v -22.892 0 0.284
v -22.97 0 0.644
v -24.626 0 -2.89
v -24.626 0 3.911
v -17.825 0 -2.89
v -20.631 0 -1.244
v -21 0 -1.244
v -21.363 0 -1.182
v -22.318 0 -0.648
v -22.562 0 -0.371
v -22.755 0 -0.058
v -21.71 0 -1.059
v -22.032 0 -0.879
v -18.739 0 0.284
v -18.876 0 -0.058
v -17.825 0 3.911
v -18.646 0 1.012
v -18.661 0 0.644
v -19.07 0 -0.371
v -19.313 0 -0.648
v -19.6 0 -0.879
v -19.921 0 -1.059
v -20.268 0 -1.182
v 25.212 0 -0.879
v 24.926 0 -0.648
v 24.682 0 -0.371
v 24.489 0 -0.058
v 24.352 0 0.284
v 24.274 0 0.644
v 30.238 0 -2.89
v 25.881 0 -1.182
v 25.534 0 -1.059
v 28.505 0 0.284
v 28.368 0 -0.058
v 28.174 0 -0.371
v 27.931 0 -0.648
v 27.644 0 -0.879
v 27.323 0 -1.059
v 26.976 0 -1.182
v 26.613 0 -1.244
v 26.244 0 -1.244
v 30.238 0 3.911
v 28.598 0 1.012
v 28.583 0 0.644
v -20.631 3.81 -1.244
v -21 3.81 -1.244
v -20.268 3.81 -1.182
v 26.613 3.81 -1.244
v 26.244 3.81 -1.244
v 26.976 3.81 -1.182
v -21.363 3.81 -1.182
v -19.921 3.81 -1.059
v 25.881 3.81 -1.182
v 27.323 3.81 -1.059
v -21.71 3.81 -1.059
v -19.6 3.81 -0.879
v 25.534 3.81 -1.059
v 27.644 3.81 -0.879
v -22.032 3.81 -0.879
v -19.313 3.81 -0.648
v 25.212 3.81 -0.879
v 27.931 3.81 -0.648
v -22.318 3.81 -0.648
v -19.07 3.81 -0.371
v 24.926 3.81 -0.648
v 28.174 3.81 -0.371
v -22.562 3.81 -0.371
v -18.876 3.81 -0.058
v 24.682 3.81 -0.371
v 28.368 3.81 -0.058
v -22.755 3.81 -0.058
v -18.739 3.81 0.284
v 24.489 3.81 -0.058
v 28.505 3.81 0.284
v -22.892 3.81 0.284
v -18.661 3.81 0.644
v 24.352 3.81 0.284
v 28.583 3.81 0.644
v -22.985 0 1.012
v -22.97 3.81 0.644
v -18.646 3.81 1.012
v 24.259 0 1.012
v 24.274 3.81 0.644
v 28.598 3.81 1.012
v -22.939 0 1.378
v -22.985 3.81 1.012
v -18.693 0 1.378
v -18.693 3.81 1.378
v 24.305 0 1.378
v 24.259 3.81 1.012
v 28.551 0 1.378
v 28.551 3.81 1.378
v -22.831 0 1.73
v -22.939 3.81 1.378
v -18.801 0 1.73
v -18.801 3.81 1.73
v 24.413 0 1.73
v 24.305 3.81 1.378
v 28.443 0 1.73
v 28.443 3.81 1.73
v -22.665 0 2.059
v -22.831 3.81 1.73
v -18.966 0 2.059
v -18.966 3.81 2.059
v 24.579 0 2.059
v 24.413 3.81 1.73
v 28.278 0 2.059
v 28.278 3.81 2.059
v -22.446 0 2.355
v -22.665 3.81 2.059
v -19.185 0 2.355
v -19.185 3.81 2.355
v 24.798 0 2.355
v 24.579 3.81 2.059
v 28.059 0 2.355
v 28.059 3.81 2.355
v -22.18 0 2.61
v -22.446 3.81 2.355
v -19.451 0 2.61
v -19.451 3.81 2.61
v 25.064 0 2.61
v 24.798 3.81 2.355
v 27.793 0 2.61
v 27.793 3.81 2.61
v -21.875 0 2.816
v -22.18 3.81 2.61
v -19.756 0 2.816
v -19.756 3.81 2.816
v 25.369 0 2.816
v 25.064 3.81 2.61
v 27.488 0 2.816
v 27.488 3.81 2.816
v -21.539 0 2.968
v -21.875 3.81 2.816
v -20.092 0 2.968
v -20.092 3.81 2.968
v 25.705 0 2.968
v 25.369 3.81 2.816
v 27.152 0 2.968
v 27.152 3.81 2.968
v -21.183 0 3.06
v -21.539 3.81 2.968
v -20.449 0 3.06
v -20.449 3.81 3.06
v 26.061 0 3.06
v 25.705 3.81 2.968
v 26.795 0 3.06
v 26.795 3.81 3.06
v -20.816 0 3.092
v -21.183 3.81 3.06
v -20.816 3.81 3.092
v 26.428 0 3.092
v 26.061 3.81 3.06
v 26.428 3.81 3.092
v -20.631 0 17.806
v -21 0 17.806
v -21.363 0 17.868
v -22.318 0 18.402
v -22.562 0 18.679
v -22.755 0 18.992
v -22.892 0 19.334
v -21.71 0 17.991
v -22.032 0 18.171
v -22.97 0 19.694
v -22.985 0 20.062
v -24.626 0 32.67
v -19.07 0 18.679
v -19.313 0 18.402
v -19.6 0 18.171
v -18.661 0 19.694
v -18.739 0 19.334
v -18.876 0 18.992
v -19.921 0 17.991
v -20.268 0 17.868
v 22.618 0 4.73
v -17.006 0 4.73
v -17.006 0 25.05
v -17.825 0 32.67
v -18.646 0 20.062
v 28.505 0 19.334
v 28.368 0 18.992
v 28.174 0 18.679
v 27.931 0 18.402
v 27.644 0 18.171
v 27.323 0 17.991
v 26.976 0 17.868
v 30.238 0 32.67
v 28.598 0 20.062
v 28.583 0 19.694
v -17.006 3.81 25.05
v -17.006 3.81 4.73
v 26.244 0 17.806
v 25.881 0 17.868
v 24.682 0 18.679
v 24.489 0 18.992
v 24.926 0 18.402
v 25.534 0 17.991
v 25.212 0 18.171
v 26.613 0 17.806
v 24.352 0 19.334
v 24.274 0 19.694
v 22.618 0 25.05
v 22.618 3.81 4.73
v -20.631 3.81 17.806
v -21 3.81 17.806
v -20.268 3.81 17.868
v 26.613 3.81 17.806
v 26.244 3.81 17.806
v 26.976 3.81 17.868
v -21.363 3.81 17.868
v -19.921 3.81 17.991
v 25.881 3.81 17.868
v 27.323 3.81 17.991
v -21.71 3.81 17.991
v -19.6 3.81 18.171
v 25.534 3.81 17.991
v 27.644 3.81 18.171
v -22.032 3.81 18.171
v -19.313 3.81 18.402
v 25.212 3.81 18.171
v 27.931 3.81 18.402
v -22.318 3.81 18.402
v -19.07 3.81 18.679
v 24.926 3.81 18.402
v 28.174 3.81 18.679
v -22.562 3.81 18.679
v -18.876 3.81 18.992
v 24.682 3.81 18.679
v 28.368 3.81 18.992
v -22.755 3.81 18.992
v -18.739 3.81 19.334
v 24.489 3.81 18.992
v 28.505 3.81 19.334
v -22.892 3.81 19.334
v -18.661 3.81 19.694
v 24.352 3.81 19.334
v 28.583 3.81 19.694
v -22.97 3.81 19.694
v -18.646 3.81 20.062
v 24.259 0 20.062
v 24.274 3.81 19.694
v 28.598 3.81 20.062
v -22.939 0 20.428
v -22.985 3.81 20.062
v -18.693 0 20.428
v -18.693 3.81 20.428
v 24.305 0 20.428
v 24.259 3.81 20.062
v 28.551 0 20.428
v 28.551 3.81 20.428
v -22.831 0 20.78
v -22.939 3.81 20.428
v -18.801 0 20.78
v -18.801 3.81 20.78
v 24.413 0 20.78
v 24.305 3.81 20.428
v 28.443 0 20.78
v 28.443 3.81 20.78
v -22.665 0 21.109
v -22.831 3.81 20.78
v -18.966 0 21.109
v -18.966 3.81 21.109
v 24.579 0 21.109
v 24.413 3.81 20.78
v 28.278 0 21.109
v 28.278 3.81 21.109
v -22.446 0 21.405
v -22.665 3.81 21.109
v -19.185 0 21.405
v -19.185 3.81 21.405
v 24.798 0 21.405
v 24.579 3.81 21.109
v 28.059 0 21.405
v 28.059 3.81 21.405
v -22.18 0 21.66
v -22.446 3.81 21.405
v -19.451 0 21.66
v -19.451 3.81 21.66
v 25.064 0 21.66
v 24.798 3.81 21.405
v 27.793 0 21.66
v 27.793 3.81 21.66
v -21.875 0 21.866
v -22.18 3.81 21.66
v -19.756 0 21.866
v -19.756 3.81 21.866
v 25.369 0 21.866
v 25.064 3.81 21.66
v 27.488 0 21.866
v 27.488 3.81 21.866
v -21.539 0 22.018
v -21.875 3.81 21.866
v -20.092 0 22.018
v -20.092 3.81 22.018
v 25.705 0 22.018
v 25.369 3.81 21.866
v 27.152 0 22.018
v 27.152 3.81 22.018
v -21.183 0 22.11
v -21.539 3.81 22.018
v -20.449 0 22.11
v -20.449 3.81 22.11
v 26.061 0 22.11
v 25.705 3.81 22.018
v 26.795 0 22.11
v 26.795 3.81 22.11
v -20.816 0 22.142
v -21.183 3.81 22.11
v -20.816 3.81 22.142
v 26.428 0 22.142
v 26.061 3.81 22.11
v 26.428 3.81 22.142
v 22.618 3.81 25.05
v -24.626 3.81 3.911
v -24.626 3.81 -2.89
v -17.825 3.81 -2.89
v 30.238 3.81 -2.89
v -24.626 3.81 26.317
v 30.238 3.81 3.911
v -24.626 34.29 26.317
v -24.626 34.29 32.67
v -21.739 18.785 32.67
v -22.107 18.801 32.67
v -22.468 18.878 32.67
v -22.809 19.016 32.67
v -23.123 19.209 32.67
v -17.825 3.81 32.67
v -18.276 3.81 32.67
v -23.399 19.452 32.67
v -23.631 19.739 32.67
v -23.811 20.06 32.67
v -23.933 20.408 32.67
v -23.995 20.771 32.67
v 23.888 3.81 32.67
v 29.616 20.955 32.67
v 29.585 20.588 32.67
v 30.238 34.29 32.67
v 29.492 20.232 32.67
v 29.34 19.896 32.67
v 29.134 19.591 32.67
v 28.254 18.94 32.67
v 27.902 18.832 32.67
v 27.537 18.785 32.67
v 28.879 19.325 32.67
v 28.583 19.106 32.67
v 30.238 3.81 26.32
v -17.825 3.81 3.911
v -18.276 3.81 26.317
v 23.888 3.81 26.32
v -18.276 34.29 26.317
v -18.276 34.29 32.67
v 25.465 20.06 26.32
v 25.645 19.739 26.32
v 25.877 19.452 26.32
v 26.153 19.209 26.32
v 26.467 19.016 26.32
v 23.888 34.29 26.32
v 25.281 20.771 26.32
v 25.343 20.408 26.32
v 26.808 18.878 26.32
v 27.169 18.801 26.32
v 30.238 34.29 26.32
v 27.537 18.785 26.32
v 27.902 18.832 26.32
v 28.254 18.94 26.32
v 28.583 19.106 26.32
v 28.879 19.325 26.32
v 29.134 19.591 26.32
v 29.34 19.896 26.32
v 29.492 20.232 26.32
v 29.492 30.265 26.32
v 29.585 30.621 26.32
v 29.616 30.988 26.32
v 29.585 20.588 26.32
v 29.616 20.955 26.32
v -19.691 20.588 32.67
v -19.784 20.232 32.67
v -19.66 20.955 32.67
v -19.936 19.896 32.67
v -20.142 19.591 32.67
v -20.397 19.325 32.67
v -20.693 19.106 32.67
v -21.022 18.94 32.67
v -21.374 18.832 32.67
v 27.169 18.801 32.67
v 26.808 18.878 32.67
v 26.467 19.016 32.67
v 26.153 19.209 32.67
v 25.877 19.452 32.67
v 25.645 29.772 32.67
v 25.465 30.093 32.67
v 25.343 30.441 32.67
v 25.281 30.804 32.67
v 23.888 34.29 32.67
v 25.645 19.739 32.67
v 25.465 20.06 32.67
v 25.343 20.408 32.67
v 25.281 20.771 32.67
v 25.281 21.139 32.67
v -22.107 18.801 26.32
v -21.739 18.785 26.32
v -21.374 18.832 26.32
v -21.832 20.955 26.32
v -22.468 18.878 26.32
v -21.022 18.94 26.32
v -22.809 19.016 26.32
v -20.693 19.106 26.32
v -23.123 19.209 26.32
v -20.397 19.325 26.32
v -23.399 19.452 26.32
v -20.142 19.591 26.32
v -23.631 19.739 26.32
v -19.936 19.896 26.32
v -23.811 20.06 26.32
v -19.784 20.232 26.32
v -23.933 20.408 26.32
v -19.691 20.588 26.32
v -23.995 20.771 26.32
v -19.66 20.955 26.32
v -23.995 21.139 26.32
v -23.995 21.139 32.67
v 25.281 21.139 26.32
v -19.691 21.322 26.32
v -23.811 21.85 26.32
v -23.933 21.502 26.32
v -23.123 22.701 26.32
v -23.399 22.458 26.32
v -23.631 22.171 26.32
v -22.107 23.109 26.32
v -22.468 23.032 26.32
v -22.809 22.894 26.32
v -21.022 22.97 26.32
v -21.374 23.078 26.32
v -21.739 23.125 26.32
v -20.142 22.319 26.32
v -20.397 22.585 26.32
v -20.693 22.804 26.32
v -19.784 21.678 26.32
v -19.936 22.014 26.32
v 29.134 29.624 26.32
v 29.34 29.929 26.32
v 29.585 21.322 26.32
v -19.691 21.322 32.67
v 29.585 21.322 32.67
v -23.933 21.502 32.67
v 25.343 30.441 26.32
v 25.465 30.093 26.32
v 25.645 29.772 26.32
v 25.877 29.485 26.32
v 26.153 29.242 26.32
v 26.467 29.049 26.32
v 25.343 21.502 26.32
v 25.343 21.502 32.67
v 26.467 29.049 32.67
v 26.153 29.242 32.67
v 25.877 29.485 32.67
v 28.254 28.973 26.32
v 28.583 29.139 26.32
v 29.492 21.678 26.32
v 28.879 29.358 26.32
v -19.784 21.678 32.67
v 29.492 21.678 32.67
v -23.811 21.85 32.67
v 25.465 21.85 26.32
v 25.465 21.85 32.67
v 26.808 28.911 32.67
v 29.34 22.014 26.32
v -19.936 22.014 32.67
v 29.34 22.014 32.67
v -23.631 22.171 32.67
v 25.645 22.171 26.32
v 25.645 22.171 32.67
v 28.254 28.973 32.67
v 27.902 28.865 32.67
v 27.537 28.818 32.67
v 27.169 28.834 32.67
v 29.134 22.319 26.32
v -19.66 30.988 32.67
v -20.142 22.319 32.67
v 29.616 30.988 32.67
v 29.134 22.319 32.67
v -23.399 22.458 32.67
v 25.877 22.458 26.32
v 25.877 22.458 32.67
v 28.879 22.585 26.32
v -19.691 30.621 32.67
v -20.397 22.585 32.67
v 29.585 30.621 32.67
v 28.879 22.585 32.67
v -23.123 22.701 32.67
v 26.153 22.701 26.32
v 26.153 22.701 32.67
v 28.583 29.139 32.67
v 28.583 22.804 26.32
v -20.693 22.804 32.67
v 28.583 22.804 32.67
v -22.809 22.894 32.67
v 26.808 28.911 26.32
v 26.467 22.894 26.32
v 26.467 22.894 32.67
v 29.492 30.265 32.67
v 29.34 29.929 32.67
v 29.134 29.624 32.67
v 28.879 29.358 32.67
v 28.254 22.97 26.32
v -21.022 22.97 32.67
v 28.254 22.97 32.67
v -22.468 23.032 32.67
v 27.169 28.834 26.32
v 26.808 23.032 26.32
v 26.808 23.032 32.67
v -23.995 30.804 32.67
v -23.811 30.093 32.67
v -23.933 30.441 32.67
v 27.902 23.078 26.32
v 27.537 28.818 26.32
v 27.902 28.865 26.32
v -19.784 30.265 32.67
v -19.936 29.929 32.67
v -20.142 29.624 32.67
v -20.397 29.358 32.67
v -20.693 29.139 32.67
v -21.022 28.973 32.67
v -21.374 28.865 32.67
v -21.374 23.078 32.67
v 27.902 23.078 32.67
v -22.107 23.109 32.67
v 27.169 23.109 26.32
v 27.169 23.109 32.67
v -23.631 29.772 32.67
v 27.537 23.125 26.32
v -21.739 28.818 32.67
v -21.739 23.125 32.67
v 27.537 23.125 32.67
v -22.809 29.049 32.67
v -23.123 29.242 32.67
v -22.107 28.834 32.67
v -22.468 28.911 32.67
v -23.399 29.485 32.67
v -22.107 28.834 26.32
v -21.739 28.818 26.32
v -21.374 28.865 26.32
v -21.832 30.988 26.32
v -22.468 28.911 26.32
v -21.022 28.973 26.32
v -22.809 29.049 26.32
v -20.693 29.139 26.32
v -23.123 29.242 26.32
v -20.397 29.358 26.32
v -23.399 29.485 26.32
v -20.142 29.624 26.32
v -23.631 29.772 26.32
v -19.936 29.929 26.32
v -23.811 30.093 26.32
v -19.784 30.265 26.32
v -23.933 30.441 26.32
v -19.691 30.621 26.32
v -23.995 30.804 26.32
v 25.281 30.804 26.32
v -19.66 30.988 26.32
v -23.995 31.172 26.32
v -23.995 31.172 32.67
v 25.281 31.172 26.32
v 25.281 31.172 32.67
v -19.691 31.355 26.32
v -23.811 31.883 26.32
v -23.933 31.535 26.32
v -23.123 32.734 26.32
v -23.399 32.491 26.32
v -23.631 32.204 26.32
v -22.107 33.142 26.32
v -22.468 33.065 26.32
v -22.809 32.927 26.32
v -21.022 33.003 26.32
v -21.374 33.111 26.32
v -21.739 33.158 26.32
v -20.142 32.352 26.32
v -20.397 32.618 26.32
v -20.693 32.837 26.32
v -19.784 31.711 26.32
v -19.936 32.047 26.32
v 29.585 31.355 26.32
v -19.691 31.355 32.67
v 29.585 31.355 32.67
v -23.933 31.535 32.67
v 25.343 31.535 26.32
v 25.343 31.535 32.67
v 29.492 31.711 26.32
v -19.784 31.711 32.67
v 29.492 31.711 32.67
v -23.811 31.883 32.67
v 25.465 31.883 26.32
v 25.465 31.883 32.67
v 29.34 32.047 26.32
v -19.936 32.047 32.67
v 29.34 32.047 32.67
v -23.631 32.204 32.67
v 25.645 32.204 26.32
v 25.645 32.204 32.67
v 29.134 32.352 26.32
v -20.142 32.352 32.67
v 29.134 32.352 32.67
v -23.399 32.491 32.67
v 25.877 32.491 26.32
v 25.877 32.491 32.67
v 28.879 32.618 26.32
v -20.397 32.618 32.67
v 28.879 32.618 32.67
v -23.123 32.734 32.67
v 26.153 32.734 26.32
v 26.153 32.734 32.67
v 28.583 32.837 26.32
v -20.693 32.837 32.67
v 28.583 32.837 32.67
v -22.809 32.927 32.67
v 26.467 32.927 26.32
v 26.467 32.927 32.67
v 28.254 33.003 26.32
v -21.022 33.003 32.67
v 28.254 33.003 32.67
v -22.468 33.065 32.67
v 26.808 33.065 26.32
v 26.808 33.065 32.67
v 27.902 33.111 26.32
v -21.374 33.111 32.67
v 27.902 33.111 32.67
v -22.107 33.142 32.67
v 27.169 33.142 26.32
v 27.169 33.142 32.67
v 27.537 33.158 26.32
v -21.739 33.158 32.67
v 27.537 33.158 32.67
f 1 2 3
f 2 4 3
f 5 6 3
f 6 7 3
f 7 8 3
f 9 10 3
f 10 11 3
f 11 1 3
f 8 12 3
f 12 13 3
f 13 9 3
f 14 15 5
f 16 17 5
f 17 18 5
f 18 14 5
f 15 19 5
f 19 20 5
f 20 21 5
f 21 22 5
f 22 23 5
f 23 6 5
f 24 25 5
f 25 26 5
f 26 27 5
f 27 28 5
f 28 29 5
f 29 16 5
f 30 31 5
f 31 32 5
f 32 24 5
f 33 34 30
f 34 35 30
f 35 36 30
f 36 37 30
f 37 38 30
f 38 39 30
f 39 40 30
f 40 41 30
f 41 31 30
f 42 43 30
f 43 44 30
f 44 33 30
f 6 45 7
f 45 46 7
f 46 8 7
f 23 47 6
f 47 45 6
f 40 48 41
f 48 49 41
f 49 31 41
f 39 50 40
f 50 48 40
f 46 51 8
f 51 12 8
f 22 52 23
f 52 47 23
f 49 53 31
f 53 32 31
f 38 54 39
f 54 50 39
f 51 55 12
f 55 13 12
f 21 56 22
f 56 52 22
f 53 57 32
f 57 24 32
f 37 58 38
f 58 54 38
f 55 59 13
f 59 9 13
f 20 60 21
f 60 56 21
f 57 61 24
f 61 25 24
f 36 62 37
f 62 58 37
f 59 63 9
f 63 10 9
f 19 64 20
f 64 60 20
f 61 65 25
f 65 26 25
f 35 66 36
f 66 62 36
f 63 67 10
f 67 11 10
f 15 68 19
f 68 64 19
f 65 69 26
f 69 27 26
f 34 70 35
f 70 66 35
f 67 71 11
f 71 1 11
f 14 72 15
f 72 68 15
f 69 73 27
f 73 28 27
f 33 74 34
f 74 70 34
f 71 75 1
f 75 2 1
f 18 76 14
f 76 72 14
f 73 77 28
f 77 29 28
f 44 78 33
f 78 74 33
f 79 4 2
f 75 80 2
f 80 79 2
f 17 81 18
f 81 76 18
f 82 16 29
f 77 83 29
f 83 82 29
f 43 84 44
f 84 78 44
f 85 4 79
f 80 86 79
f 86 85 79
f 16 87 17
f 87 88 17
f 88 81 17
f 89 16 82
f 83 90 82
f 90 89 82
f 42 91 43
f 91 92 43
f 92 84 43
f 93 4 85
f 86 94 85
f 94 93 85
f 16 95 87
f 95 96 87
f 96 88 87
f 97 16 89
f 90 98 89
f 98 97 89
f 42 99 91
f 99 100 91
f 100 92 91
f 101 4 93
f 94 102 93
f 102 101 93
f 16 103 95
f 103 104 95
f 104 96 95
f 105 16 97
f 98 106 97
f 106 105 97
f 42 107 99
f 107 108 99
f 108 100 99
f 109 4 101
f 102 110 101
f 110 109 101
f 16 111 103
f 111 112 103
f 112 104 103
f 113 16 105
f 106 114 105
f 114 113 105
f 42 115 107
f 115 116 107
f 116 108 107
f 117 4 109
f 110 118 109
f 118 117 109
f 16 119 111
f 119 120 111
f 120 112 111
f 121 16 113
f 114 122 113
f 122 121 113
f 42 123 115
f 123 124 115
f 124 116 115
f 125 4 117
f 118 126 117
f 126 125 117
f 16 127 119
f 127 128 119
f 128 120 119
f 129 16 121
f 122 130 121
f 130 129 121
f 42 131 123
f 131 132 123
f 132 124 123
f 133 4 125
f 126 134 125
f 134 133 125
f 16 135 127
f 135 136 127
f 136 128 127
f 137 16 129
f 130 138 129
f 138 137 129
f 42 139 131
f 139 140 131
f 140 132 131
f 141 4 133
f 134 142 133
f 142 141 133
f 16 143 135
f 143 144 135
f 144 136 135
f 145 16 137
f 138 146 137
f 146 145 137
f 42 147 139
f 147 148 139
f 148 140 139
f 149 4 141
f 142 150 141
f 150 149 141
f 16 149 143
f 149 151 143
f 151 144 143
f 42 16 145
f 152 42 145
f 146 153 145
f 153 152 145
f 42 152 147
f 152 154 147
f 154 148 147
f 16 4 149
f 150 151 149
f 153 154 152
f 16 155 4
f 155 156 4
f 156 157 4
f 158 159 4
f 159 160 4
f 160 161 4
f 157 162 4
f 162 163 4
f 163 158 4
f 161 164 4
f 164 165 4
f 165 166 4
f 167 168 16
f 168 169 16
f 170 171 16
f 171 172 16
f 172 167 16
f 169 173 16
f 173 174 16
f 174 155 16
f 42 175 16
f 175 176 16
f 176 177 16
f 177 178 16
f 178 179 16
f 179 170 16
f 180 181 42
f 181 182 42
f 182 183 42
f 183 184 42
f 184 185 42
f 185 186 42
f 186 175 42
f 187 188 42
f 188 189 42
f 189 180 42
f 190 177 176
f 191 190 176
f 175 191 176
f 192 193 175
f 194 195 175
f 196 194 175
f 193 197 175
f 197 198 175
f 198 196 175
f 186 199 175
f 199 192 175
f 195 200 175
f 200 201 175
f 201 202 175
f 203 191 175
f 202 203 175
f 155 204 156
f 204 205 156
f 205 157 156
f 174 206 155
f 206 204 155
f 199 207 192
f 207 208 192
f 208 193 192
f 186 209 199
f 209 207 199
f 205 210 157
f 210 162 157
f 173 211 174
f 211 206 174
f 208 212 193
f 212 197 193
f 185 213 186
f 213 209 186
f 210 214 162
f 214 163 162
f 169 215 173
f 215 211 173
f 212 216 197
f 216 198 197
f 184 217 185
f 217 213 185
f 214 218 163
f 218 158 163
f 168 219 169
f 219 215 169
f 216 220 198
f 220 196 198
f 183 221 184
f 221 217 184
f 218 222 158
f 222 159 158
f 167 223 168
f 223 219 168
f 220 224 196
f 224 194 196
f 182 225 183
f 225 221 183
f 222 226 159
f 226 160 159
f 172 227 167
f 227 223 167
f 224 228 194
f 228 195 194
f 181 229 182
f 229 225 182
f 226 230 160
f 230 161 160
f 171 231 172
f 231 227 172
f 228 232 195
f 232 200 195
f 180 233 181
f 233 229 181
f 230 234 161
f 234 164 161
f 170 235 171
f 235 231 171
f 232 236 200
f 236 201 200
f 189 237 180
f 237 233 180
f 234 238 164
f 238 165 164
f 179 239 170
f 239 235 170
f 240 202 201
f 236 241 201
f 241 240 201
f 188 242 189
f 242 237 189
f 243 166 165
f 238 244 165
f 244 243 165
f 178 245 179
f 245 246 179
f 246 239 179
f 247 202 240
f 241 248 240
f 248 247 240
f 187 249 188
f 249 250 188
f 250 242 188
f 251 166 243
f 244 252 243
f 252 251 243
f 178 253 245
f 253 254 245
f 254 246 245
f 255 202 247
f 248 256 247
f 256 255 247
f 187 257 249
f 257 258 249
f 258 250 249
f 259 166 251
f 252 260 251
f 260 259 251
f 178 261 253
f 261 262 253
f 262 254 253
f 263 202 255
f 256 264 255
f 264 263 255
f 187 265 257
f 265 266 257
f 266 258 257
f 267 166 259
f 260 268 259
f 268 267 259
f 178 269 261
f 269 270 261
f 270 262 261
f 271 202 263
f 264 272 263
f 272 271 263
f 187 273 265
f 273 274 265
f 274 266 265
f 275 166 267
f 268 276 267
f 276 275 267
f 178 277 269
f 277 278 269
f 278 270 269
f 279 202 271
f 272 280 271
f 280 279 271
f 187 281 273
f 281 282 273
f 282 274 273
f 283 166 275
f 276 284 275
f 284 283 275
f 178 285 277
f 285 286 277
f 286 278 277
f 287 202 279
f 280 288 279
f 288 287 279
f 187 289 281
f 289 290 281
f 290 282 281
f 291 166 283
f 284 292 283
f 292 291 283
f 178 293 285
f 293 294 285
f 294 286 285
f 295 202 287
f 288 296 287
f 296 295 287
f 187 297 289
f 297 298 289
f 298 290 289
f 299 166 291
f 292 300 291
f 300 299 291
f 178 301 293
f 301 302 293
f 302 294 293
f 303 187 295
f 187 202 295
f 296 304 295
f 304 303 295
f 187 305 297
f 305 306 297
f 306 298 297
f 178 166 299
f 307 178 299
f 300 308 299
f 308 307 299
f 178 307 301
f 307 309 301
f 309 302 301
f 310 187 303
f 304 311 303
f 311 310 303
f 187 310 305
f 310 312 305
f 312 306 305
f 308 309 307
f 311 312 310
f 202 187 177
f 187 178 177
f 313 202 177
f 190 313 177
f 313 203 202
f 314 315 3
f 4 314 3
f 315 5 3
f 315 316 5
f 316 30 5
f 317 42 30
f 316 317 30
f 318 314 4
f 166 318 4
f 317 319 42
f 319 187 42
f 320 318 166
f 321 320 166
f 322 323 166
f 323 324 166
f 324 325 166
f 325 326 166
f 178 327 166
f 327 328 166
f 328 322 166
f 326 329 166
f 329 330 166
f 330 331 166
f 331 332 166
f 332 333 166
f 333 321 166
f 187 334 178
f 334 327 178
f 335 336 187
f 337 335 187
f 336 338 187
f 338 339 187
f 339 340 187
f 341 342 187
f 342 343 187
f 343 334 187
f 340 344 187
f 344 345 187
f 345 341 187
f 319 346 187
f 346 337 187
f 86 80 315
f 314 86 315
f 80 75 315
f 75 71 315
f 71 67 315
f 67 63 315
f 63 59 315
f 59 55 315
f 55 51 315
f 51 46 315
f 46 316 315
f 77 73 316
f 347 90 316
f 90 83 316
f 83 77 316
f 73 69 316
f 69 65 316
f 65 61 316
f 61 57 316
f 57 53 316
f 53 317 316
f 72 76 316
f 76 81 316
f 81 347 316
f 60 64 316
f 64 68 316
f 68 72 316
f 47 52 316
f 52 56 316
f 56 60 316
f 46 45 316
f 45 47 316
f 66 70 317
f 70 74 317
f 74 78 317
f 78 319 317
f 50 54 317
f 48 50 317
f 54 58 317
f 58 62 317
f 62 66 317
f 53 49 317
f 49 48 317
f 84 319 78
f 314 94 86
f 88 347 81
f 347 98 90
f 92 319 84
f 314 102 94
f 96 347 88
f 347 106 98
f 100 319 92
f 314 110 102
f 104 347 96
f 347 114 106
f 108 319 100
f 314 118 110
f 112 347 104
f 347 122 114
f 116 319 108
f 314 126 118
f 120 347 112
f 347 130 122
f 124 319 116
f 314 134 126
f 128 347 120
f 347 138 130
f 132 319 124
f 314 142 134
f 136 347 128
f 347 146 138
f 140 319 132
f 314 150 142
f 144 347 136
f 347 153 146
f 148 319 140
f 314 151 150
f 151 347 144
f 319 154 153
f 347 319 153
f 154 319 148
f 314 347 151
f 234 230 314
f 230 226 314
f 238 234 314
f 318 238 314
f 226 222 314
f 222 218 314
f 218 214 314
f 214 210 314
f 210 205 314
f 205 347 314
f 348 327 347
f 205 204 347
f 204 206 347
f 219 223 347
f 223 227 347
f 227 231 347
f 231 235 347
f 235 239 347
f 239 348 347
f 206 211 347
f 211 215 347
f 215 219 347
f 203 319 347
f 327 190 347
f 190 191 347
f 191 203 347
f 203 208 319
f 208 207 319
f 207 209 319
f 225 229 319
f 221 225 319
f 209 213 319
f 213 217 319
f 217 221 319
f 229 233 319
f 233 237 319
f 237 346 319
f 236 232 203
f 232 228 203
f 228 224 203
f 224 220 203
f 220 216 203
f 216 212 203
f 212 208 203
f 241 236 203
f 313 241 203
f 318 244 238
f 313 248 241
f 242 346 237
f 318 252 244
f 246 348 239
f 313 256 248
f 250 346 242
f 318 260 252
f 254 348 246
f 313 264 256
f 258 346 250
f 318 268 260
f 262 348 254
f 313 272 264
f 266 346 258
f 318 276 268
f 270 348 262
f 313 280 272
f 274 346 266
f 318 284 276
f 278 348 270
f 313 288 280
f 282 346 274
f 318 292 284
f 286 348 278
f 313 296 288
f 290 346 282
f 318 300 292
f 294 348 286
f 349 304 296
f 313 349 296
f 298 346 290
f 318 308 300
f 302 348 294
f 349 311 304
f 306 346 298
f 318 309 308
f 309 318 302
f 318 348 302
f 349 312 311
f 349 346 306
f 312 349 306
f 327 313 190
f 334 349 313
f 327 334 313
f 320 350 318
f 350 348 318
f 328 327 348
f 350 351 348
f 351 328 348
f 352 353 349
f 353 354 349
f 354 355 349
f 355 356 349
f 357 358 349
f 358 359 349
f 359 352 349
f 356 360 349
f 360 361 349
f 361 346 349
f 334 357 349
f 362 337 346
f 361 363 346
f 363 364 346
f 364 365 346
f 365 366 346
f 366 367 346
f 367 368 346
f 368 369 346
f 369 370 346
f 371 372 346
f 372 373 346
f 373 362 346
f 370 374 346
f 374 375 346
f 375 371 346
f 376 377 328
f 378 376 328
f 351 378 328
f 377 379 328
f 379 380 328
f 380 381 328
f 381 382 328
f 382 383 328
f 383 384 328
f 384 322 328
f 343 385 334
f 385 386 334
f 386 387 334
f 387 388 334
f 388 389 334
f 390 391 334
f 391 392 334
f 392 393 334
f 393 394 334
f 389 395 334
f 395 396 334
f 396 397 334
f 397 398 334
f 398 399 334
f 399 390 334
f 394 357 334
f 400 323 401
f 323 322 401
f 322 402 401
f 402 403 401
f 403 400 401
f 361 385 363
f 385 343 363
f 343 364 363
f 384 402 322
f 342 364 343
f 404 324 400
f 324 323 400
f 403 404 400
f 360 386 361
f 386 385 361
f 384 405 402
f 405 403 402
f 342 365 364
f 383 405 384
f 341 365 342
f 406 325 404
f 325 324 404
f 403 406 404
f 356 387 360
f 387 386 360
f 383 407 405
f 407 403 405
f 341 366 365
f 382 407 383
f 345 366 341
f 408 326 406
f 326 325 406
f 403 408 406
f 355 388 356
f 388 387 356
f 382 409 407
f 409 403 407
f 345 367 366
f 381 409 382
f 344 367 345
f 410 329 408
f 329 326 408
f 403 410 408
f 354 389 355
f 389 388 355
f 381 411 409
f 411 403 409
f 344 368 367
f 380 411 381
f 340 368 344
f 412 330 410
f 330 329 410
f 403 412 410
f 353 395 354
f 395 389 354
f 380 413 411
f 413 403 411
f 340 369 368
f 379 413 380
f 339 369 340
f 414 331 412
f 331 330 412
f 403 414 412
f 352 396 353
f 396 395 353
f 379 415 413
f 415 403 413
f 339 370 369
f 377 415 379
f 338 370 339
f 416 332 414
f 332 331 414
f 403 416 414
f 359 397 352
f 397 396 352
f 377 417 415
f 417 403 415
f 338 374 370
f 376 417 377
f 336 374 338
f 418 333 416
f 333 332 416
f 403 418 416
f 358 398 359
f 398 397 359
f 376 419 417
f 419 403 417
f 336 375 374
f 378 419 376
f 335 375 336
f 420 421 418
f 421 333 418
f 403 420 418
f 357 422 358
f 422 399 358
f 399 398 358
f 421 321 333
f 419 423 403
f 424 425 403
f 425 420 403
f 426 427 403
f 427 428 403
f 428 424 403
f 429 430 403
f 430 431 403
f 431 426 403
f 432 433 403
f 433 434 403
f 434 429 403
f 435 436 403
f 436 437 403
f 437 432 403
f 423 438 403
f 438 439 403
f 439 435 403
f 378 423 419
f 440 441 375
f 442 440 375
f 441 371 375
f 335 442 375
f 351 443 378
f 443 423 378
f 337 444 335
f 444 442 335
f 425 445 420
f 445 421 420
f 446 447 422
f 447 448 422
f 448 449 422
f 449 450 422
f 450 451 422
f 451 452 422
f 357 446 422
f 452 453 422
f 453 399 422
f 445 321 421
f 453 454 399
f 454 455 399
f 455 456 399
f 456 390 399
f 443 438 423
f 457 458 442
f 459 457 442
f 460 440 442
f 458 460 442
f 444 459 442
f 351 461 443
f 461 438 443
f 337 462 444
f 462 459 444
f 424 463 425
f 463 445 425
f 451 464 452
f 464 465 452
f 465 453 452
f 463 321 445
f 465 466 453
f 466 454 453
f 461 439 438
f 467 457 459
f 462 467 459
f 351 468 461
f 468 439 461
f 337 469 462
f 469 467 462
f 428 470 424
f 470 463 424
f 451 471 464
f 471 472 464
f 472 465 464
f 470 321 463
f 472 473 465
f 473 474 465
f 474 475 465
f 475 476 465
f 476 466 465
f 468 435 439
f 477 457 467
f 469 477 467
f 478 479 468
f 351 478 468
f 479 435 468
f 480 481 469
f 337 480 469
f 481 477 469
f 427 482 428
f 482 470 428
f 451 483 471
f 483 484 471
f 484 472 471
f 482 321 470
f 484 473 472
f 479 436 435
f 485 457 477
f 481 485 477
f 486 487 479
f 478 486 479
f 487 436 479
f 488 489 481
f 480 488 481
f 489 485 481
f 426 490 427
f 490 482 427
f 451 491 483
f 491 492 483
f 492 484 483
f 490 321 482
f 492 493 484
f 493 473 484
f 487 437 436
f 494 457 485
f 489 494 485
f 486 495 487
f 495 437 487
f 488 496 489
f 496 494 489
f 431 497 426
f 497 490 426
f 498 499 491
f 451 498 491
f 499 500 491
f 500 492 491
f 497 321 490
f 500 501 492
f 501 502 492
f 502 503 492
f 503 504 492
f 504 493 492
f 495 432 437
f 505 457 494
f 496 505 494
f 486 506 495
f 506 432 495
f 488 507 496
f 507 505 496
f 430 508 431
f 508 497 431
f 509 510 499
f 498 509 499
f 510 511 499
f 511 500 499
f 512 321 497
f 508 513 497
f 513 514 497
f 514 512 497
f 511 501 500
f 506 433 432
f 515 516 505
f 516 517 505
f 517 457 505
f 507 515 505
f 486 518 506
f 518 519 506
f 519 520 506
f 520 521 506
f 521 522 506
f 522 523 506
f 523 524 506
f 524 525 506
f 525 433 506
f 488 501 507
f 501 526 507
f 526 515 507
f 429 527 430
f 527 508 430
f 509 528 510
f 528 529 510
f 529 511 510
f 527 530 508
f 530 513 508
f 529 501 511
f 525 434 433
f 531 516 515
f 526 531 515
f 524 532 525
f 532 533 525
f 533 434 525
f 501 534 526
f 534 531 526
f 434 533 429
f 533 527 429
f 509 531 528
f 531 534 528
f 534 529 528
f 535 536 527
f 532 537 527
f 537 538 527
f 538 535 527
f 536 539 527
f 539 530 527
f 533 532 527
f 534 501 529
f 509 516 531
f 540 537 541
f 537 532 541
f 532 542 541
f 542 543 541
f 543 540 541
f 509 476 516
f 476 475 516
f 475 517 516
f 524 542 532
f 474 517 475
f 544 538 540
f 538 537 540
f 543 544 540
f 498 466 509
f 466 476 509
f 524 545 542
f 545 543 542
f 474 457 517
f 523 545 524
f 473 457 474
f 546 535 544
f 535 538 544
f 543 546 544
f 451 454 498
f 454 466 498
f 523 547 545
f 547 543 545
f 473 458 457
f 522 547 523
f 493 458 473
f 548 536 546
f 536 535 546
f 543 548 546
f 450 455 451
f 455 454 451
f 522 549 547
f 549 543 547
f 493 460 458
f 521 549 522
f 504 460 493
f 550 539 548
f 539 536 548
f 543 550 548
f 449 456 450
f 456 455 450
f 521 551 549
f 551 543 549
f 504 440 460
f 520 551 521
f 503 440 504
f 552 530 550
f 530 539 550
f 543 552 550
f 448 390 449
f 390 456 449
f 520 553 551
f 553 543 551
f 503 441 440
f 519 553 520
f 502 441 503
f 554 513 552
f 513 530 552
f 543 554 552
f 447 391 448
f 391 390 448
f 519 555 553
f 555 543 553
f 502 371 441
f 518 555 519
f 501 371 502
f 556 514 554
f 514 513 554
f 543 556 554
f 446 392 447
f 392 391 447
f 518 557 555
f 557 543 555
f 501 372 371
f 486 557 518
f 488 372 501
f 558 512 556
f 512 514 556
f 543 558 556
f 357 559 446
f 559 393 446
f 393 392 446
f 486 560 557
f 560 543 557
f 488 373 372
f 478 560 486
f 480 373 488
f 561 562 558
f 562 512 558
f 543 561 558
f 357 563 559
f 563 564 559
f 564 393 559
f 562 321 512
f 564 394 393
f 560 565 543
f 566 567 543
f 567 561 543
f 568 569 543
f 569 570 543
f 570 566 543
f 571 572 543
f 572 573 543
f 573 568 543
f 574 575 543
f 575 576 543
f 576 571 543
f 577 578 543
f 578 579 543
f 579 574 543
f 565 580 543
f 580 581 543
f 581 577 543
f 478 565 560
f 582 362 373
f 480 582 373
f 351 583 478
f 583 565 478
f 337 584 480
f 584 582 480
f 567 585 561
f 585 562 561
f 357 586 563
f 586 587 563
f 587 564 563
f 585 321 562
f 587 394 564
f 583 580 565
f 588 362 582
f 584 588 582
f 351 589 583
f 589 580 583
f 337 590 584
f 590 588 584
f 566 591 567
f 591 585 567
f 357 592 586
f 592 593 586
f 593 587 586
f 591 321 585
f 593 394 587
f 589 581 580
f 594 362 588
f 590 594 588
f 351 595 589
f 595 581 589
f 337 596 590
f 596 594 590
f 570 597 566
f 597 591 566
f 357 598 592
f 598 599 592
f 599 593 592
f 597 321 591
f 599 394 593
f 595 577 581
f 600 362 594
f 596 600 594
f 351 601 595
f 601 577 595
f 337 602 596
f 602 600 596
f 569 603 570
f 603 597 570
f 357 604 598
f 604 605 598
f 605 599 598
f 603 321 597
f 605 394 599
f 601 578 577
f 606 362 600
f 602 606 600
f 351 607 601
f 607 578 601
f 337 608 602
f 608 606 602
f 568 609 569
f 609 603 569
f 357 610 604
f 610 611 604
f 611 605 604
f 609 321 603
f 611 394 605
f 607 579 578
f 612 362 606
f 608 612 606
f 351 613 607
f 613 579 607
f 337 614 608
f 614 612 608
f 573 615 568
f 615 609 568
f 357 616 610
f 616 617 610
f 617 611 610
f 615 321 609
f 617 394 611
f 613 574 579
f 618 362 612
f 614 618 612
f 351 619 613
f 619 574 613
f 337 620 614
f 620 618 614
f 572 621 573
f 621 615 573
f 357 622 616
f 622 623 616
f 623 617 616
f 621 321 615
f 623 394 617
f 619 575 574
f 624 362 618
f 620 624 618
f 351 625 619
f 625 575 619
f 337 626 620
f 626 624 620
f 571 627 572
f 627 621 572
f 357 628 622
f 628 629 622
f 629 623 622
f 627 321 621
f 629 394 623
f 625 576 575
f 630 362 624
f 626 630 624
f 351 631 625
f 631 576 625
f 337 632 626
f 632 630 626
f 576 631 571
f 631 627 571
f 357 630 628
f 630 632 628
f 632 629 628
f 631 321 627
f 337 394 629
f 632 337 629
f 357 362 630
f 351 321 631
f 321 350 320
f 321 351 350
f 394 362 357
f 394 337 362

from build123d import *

# Parameters (mm, degrees)
SKETCH1_W           = 54.864
SKETCH1_H           = 35.56
BOSS_EXTRUDE1_DEPTH = 3.81
SKETCH2_R           = 2.1717
SKETCH2_W           = 39.624
SKETCH2_H           = 20.32
CUT_EXTRUDE2_DEPTH  = 3.81
SKETCH3_W           = 6.35
SKETCH3_H           = 6.352840925
SKETCH3_H_2         = 6.35
BOSS_EXTRUDE2_DEPTH = 30.48
SKETCH4_R           = 2.1717
CUT_EXTRUDE3_DEPTH  = 6.35


with BuildPart() as part:
    # Sketch1 → Boss-Extrude1 (new body)
    with BuildSketch(Plane(origin=(0, 0, 0), x_dir=(1, 0, 0), z_dir=(0, 1, 0))):
        with Locations((2.806390244, -14.88997561)):
            Rectangle(SKETCH1_W, SKETCH1_H)
    extrude(amount=BOSS_EXTRUDE1_DEPTH)

    # Sketch2 → Cut-Extrude2 (cut)
    with BuildSketch(Plane(origin=(0, 3.81, 0), x_dir=(1, 0, 0), z_dir=(0, 1, 0))):
        with Locations(Location((-20.815609756, -0.91997561, 0), (0, 0, 270))):
            Circle(SKETCH2_R)
        with Locations(Location((-20.815609756, -19.96997561, 0), (0, 0, 270))):
            Circle(SKETCH2_R)
        with Locations(Location((26.428390244, -19.96997561, 0), (0, 0, 270))):
            Circle(SKETCH2_R)
        with Locations(Location((26.428390244, -0.91997561, 0), (0, 0, 270))):
            Circle(SKETCH2_R)
        with Locations((2.806390244, -14.88997561)):
            Rectangle(SKETCH2_W, SKETCH2_H)
    extrude(amount=-CUT_EXTRUDE2_DEPTH, mode=Mode.SUBTRACT)

    # Sketch3 → Boss-Extrude2 (add)
    with BuildSketch(Plane(origin=(0, 3.81, 0), x_dir=(1, 0, 0), z_dir=(0, 1, 0))):
        with Locations((-21.450609756, -29.493555148)):
            Rectangle(SKETCH3_W, SKETCH3_H)
        with Locations((27.063390244, -29.49497561)):
            Rectangle(SKETCH3_W, SKETCH3_H_2)
    extrude(amount=BOSS_EXTRUDE2_DEPTH)

    # Sketch4 → Cut-Extrude3 (cut)
    with BuildSketch(Plane.XY.offset(32.66997561)):
        with Locations((-21.831609756, 30.988)):
            Circle(SKETCH4_R)
        with Locations((-21.831609756, 20.955)):
            Circle(SKETCH4_R)
        with Locations((27.444390244, 30.988)):
            Circle(SKETCH4_R)
        with Locations((27.444390244, 20.955)):
            Circle(SKETCH4_R)
    extrude(amount=-CUT_EXTRUDE3_DEPTH, mode=Mode.SUBTRACT)


solid = part.part
